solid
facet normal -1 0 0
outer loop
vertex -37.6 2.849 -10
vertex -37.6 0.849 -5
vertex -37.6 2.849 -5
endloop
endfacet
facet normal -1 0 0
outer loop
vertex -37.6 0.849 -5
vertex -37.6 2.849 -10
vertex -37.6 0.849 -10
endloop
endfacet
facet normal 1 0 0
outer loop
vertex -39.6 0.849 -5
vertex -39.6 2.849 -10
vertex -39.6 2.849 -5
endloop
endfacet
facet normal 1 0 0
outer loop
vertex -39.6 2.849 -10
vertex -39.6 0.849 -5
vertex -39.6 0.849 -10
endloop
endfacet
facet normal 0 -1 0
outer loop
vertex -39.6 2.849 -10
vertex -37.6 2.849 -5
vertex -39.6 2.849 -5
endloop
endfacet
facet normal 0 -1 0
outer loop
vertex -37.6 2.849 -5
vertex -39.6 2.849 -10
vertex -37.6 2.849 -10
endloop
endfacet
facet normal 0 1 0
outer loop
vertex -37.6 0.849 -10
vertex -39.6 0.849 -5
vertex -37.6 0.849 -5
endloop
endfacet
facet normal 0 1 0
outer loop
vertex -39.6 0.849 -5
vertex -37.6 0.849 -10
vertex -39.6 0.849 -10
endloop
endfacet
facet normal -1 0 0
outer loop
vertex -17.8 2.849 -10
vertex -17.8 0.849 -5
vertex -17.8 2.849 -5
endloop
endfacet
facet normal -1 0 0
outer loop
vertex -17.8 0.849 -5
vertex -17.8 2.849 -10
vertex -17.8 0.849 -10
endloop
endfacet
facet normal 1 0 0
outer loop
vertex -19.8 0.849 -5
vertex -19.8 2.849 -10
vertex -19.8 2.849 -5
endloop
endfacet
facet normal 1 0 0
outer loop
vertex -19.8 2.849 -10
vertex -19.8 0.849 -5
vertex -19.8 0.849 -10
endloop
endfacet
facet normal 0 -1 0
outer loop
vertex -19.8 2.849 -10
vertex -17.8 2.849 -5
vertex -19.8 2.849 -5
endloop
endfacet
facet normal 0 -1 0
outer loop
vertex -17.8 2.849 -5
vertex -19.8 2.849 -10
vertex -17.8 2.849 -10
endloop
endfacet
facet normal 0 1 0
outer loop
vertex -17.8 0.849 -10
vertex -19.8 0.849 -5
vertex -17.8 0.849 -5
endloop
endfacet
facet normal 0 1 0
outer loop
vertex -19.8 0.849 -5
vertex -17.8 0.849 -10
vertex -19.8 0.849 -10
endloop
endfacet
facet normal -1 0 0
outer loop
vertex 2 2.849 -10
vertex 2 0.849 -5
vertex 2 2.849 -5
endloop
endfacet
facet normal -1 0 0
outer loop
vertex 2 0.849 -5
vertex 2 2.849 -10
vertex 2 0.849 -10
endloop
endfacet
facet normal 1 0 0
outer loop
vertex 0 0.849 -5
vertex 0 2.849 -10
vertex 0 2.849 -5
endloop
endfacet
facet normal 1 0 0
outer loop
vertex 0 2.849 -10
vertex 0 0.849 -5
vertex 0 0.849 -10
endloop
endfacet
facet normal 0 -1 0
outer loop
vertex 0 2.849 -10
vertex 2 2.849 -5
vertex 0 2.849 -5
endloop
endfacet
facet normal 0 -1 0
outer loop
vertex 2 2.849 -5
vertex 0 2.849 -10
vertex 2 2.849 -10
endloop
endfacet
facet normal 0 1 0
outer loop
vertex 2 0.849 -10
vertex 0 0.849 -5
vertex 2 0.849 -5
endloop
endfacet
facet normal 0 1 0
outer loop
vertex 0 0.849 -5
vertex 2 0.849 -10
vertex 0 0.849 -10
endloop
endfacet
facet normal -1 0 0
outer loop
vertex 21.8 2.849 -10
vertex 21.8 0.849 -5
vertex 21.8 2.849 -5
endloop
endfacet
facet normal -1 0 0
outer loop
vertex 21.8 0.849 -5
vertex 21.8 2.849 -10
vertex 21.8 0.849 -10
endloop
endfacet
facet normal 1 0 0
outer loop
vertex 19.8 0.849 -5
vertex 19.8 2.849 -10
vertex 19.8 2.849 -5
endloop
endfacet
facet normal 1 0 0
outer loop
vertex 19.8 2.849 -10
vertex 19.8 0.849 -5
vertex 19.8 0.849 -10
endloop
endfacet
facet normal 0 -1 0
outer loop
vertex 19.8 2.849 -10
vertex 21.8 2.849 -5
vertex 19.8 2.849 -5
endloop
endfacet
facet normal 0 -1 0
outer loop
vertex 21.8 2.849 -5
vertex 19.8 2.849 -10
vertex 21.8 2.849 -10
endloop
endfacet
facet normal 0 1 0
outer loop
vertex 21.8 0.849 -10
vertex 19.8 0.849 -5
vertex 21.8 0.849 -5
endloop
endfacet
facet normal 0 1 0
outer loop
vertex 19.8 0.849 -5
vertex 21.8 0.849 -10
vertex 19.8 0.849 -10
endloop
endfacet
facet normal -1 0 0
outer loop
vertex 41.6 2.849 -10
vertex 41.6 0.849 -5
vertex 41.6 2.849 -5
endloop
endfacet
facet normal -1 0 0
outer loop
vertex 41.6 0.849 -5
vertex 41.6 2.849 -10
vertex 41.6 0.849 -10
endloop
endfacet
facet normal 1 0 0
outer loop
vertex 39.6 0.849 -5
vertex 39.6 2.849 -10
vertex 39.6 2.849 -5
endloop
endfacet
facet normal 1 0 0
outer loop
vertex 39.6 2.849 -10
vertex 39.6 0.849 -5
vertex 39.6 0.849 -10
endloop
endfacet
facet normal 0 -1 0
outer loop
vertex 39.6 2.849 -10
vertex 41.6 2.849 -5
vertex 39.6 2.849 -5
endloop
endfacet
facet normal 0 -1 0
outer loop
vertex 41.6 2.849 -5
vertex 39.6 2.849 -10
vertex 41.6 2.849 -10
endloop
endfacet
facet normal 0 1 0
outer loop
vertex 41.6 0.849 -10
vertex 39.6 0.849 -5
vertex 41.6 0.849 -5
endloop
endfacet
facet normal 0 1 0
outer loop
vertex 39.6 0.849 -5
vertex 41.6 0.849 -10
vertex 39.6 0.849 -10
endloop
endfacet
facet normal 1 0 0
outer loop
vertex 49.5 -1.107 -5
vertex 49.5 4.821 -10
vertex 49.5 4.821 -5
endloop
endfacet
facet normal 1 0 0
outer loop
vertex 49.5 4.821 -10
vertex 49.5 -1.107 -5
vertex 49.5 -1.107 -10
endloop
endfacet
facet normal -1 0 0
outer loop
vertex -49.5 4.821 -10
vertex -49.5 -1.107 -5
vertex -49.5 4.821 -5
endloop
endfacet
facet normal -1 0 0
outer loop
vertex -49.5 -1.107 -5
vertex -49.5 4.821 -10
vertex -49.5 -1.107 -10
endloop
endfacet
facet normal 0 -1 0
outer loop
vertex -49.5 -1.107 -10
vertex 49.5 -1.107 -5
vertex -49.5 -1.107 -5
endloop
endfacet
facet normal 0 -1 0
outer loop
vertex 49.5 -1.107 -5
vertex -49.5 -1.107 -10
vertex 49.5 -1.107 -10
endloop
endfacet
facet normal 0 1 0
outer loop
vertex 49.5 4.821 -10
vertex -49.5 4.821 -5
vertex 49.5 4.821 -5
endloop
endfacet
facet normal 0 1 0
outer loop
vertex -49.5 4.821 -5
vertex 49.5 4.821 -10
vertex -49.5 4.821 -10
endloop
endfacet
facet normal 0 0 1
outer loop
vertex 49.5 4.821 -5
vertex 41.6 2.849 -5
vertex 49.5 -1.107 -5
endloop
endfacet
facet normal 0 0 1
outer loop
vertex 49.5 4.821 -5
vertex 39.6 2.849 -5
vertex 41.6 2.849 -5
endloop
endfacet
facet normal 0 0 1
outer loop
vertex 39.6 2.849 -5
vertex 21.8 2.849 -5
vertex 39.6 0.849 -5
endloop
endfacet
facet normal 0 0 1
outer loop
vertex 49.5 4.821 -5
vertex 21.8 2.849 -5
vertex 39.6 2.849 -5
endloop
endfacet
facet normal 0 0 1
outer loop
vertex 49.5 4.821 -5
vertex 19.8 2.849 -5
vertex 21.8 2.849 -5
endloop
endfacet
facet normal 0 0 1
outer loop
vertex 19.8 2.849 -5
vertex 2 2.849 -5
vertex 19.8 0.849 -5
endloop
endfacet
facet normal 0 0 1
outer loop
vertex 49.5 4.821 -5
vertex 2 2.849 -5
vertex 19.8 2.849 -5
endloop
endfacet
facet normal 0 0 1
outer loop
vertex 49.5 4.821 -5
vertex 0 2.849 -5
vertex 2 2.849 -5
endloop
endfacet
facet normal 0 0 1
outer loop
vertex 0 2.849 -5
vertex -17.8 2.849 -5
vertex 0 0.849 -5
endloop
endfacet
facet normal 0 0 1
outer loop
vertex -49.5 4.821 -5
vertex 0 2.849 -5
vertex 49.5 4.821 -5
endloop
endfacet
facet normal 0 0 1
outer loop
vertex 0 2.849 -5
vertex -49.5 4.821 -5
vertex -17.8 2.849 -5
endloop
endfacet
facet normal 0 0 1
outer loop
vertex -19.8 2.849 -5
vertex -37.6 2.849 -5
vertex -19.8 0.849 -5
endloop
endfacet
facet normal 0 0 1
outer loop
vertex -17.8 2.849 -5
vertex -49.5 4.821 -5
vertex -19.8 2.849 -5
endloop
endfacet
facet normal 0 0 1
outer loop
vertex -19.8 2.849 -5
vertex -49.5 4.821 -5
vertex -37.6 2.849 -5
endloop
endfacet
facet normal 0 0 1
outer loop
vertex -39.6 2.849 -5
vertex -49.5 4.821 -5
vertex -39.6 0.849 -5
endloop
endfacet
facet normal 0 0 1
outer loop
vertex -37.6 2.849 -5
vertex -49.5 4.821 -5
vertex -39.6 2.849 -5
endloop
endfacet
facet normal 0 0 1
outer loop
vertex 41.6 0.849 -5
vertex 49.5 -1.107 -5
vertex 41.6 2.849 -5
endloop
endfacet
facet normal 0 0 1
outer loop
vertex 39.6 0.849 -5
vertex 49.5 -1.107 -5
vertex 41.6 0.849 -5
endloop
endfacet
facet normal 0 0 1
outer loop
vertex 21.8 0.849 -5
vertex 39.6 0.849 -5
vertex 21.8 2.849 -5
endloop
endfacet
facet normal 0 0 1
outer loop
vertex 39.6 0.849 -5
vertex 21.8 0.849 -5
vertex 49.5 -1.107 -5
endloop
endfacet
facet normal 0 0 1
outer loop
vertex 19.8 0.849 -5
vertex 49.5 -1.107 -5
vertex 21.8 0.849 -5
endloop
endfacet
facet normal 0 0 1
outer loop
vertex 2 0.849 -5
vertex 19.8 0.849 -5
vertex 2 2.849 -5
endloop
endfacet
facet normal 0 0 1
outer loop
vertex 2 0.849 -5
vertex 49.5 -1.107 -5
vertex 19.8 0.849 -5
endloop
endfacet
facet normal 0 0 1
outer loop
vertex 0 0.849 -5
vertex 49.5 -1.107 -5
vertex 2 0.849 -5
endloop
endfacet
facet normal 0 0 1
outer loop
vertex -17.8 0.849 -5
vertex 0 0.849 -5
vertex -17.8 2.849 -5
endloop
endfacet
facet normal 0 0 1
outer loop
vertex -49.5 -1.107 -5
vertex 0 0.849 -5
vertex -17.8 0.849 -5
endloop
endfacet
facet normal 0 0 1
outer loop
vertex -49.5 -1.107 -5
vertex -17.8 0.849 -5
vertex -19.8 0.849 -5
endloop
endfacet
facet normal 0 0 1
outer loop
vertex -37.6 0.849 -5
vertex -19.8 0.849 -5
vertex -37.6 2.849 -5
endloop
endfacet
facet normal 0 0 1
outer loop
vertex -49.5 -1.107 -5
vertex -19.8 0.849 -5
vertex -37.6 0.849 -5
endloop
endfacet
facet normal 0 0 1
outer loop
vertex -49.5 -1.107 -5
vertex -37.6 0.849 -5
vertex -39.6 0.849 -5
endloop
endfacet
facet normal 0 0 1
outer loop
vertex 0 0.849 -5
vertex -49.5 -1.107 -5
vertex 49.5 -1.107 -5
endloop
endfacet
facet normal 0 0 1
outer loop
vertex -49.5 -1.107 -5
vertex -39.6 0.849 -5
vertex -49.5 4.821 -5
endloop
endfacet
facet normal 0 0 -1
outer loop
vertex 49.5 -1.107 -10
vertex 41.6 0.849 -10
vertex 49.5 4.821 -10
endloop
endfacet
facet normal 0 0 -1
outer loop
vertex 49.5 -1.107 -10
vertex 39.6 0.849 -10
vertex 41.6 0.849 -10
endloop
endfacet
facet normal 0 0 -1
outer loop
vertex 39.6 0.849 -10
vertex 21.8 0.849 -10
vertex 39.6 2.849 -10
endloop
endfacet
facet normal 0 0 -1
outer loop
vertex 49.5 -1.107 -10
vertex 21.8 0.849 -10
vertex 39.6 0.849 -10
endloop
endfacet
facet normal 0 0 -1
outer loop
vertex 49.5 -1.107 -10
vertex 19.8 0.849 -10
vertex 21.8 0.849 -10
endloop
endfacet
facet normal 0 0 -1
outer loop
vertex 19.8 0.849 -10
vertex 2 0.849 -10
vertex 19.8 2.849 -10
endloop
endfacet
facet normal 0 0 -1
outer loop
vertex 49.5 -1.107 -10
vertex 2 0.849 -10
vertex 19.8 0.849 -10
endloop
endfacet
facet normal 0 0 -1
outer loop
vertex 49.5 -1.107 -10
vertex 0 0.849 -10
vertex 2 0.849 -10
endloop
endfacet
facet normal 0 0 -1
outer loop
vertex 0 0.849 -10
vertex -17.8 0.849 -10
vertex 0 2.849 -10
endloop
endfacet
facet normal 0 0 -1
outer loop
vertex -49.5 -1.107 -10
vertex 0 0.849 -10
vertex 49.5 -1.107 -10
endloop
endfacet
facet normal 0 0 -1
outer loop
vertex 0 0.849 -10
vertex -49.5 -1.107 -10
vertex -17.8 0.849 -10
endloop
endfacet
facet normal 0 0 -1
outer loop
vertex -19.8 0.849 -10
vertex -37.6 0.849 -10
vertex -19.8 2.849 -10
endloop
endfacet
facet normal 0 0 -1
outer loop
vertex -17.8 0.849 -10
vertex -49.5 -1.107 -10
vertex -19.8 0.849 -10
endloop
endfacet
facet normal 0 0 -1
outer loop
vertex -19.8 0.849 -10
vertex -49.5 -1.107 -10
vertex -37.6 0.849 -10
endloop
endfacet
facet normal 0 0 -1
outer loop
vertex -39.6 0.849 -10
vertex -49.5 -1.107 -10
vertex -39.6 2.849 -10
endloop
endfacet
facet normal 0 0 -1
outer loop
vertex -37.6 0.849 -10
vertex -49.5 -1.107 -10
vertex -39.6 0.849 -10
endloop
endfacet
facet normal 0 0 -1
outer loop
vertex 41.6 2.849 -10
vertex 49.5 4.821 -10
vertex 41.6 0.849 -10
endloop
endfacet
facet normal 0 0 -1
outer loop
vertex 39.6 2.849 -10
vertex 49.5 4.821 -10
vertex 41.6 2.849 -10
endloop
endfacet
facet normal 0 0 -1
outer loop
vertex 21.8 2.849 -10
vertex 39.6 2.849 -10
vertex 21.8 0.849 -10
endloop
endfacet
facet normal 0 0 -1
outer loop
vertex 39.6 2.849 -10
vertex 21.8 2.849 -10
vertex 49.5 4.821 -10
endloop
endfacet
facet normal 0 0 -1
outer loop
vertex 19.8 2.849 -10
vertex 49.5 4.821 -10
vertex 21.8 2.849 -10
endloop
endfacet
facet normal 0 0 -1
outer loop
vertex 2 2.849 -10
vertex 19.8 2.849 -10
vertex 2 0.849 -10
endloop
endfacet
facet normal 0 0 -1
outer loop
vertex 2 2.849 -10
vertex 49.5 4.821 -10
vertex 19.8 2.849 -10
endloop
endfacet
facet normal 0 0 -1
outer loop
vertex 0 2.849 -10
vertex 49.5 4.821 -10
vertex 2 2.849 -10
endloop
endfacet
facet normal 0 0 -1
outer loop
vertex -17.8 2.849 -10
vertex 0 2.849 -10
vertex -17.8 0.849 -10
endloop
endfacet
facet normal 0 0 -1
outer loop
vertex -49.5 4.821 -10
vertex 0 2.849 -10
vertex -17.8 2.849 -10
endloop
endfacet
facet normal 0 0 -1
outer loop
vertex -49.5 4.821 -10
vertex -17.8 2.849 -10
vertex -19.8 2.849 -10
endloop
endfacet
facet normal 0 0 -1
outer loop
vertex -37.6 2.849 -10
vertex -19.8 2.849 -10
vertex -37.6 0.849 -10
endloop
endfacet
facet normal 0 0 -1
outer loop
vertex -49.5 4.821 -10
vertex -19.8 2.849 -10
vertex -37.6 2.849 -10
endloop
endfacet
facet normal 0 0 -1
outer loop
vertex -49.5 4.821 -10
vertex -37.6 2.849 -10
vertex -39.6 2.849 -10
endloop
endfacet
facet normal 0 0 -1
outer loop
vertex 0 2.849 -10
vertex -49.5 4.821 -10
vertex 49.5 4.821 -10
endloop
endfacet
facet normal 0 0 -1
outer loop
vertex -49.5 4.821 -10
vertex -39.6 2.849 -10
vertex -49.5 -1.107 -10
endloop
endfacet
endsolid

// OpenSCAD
// file: soap-bottle-holder.scad
TOLERANCE       = 2;
CHAMFER         = 2;

BAR_DIAMETER    = 19;
BAR_POS_X       = 30;

BOTTLE_DIAMETER = 60 + TOLERANCE + CHAMFER*2;
BOTTLE_HEIGHT   = 146                          - 70;
BOTTLE_POS_Z    = 220;

THICKNESS       = 6                            -  2;
THICKNESS_2     = 4;


HOLLOWING_WALL  = 4;

SLANT_ANGLE     = 45-5;


LAYER           = .15;
ATOM            = 0.01;

WIDTH           = BOTTLE_DIAMETER*1.5;
SHELF_DIAMETER  = BOTTLE_DIAMETER + THICKNESS *2 + BAR_POS_X*2 - THICKNESS;
BAR_THICKNESS   = BAR_DIAMETER + THICKNESS*2;

$fn = $preview ? 30 : 120;

module scars() {
    // Scars create cracks inside the hook under the surface, to reinforce by replacing infill by inner walls 
    thickness = .2;
    margin = THICKNESS/2 - thickness*.75;
    difference() {
        // scars
        d = BAR_DIAMETER + THICKNESS*2 - margin*2;
        for (y=[3:THICKNESS/2+thickness*3:WIDTH-2])
                hull() {
                translate([BAR_THICKNESS/2, y, BOTTLE_POS_Z + BAR_DIAMETER/2])
                rotate([-90, 0, 0])
                cylinder(d=d, h=thickness);

                translate([BAR_THICKNESS/2, y, BOTTLE_POS_Z - BAR_DIAMETER/2])
                rotate([-90, 0, 0])
                cylinder(d=d, h=thickness);
            }

        // limit scars to not cross the skin
        hull() {
            d2 = BAR_DIAMETER + margin*2;
            translate([BAR_THICKNESS/2, -ATOM, BOTTLE_POS_Z + BAR_DIAMETER/2])
            rotate([-90, 0, 0])
            cylinder(d=d2, h=WIDTH+ATOM*2);

            translate([BAR_THICKNESS/2, -ATOM, BOTTLE_POS_Z - BAR_DIAMETER/2])
            rotate([-90, 0, 0])
            cylinder(d=d2, h=WIDTH+ATOM*2);
 
            translate([BAR_THICKNESS/2 -BAR_DIAMETER, -ATOM, BOTTLE_POS_Z - BAR_DIAMETER/2 -BAR_DIAMETER])
            rotate([-90, 0, 0])
            cylinder(d=d2, h=WIDTH+ATOM*2);
        }
    }
}

module bar(partial=false) {
    translate([0, -WIDTH/2, 0])
    difference() {
        // pillar
        hull() {
            translate([BAR_THICKNESS/2, 0, BOTTLE_POS_Z + BAR_DIAMETER/2])
            rotate([-90, 0, 0])
            cylinder(d=BAR_THICKNESS, h=WIDTH);

            cube([BAR_DIAMETER + THICKNESS*2, WIDTH, ATOM]);
        }
        
        // top hole
        hull() {
            translate([BAR_THICKNESS/2, -ATOM, BOTTLE_POS_Z + BAR_DIAMETER/2])
            rotate([-90, 0, 0])
            cylinder(d=BAR_DIAMETER, h=WIDTH+ATOM*2);

            translate([BAR_THICKNESS/2, -ATOM, BOTTLE_POS_Z - BAR_DIAMETER/2])
            rotate([-90, 0, 0])
            cylinder(d=BAR_DIAMETER, h=WIDTH+ATOM*2);
        }

        // top back opening
        hull() {
            translate([BAR_THICKNESS/2, -ATOM, BOTTLE_POS_Z - BAR_DIAMETER/2])
            rotate([-90, 0, 0])
            cylinder(d=BAR_DIAMETER, h=WIDTH+ATOM*2);

            translate([BAR_THICKNESS/2 - BAR_DIAMETER*2, -ATOM, BOTTLE_POS_Z - BAR_DIAMETER/2 - BAR_DIAMETER*2])
            rotate([-90, 0, 0])
            cylinder(d=BAR_DIAMETER, h=WIDTH+ATOM*2);

            translate([BAR_THICKNESS/2 - BAR_DIAMETER, -ATOM, BOTTLE_POS_Z - BAR_DIAMETER/2])
            rotate([-90, 0, 0])
            cylinder(d=BAR_DIAMETER, h=WIDTH+ATOM*2);
        }

        // front removal
        translate([THICKNESS, -ATOM, -THICKNESS/sqrt(2)/1])
        hull() {
            translate([BAR_THICKNESS, 0, BOTTLE_POS_Z - BAR_DIAMETER*2 + BAR_THICKNESS])
            cube([ATOM, WIDTH+ATOM*2, ATOM]);

            translate([0, 0, BOTTLE_POS_Z - BAR_DIAMETER*2])
            cube([BAR_THICKNESS, WIDTH+ATOM*2, ATOM]);

            cube([BAR_THICKNESS, WIDTH+ATOM*2, ATOM]);
        }
        
        // scars
        if (!partial)
            scars();
    }
}

function get_hook_z() = BOTTLE_POS_Z - BAR_DIAMETER*2;
function get_hook_w() = WIDTH;
function get_hook_th() = BAR_THICKNESS;
function get_th() = THICKNESS;

DY = BOTTLE_DIAMETER+1.5 + THICKNESS/2;

DY2 = BOTTLE_DIAMETER*.75 + THICKNESS;

module side_shape(outer=false) {
    extra = outer ? THICKNESS*2 : 0;
    dh = outer ? 0 : ATOM;
    chamfer = $preview ? 0: CHAMFER;
    hull() {
        translate([-BOTTLE_DIAMETER/4, 0, -dh])
        cylinder(d=BOTTLE_DIAMETER/2 + extra + chamfer, h=BOTTLE_HEIGHT+dh*2);
        translate([BOTTLE_DIAMETER/4, 0, -dh])
        cylinder(d=BOTTLE_DIAMETER/2 + extra + chamfer, h=BOTTLE_HEIGHT+dh*2);
    }
}

module bottle_holder_outer() {
    hull()
    for (y=[-DY2, DY2])
        translate([BOTTLE_DIAMETER/2 + THICKNESS_2, y, 0])
        side_shape(true);
}

module bottle_holder_main_0() {
    spacer();
    difference() {
        // body
        bottle_holder_outer();

        // cavity
        chamfer = $preview ? 0: CHAMFER;
        translate([BOTTLE_DIAMETER/2+THICKNESS, 0, -ATOM])
        cylinder(d=BOTTLE_DIAMETER+chamfer*2, h=BOTTLE_HEIGHT*2);

        for (y=[-DY2, DY2])
            translate([BOTTLE_DIAMETER/2+THICKNESS, y, 0])
            side_shape(false);

        // slanted top
        translate([0, -BOTTLE_DIAMETER*2, BOTTLE_HEIGHT])
        rotate([0, SLANT_ANGLE, 0])
        cube([BOTTLE_DIAMETER*3, BOTTLE_DIAMETER*4, BOTTLE_HEIGHT]);            
    }
}

module bottle_holder_main() {
    minkowski() {
        bottle_holder_main_0();
        if (!$preview)
        sphere(r=CHAMFER, $fn=20);
    }
}

module bottle_holder() {
    translate([0, 0, CHAMFER])
    bottle_holder_main();

    // floor
    intersection() {
        bottle_holder_outer();
        n = 4;
        d = BOTTLE_DIAMETER/(n+1);
        r = THICKNESS * .35;
        for (i=[1: n]) {
            x = -BOTTLE_DIAMETER/2*0  + THICKNESS + d*i;

            hull() {
                translate([x, 0, THICKNESS/2])
                rotate([90, 0, 0])
                cylinder(r=r, h=BOTTLE_DIAMETER*3, center=true);

                translate([x, 0, 0])
                rotate([90, 0, 0])
                cylinder(r=r, h=BOTTLE_DIAMETER*3, center=true);
            }
        }
    }
}

module spacer() {
    w = WIDTH/4;
    w2 = WIDTH/8;
    hull() {
        translate([0, -w/2, BAR_POS_X*2+THICKNESS])
        cube([ATOM, w, 1]);

        translate([-BAR_POS_X, -w2/2, BAR_POS_X+THICKNESS])
        cube([BAR_POS_X, w2, 1]);

        translate([-BAR_POS_X, -w2/2, BAR_POS_X])
        cube([BAR_POS_X, w2, 1]);

        translate([0, -w/2, 0])
        cube([ATOM, w, 1]);
    }
}

module support() {
    // v pillar
    h = BAR_DIAMETER*2;
    translate([0, -WIDTH/2, BOTTLE_POS_Z - h -LAYER*2])
    cube([.3, WIDTH, h]);

    // slanted pillar
    h2 = BAR_DIAMETER*2;
    translate([THICKNESS + BAR_DIAMETER/2, 0, THICKNESS + BAR_DIAMETER/2  + THICKNESS/2])
    translate([0, -WIDTH/2, BOTTLE_POS_Z - h2 -LAYER*3])
    rotate([0, -23.5, 0])
    cube([.3, WIDTH, h2 *.647]);

    // bridge
    th = .3;
    for (y=[0:2:WIDTH]) {
        translate([0, y - WIDTH/2, BOTTLE_POS_Z -LAYER*1 -th])
        cube([THICKNESS, 1, th]);
    }

}

module all() {
    translate([BAR_POS_X, 0, 0]) {
        translate([-2 - CHAMFER/2, 0, 0]) {
            bar();
            //support();
        }

        bottle_holder();
    }
}

module cut(doit) {
    intersection() {
        children();
        if (doit) {
            translate([BAR_POS_X + THICKNESS + BAR_DIAMETER/2, 0, 0])
            //rotate([0, 0, 45])
            translate([0, -WIDTH/2+3+.65, 0])
            cube([1000, 1, 1000], center=true);
            % children();
        }
    }
}

cut(!true) all();


if (0)
%
translate([BAR_POS_X, 0, 0])
translate([BOTTLE_DIAMETER/2+THICKNESS, 0, 0])
cylinder(d=BOTTLE_DIAMETER, h=BOTTLE_HEIGHT);

//%cylinder(r=200, h=60+10);

//%translate([BAR_POS_X+BOTTLE_DIAMETER/2+THICKNESS, 0, 0]) cylinder(d=BOTTLE_DIAMETER-1, 100);
// file: hook-only.scad
use <soap-bottle-holder.scad>;

H = get_hook_z();
W = get_hook_w();
TH2 = get_hook_th();
TH = get_th();
ATOM = 0.01;

D = 2;

module hook0() {
    difference() {
        bar(partial=true);

        // remove existing
        translate([-ATOM, -W/2 -ATOM, -ATOM])
        cube([TH+ATOM*2, get_hook_w()+ATOM*2, H]);

        // holes for pins
        w = W * .8;
        n = 5;
        sp = n;
        for (i=[0:n-1]) {
            y = -w/2 + (i/(n-1)) * w;
            translate([0, y, H - D*.6])
            rotate([0, 45, 0])
            cube([D, D, TH2]);
        }
    }
}

module hook() {
    rotate([90, 0, 0])
    translate([0, 0, -H])
    hook0();
}

hook();
// main file
use <hook-only.scad>;

rotate([0, 90, 0])
intersection() {
    difference() {
        rotate([0, 0, 45])
        hook();

        cube([10, 10, 300], center=true);
    }
    cube([20, 20, 300], center=true);
}
